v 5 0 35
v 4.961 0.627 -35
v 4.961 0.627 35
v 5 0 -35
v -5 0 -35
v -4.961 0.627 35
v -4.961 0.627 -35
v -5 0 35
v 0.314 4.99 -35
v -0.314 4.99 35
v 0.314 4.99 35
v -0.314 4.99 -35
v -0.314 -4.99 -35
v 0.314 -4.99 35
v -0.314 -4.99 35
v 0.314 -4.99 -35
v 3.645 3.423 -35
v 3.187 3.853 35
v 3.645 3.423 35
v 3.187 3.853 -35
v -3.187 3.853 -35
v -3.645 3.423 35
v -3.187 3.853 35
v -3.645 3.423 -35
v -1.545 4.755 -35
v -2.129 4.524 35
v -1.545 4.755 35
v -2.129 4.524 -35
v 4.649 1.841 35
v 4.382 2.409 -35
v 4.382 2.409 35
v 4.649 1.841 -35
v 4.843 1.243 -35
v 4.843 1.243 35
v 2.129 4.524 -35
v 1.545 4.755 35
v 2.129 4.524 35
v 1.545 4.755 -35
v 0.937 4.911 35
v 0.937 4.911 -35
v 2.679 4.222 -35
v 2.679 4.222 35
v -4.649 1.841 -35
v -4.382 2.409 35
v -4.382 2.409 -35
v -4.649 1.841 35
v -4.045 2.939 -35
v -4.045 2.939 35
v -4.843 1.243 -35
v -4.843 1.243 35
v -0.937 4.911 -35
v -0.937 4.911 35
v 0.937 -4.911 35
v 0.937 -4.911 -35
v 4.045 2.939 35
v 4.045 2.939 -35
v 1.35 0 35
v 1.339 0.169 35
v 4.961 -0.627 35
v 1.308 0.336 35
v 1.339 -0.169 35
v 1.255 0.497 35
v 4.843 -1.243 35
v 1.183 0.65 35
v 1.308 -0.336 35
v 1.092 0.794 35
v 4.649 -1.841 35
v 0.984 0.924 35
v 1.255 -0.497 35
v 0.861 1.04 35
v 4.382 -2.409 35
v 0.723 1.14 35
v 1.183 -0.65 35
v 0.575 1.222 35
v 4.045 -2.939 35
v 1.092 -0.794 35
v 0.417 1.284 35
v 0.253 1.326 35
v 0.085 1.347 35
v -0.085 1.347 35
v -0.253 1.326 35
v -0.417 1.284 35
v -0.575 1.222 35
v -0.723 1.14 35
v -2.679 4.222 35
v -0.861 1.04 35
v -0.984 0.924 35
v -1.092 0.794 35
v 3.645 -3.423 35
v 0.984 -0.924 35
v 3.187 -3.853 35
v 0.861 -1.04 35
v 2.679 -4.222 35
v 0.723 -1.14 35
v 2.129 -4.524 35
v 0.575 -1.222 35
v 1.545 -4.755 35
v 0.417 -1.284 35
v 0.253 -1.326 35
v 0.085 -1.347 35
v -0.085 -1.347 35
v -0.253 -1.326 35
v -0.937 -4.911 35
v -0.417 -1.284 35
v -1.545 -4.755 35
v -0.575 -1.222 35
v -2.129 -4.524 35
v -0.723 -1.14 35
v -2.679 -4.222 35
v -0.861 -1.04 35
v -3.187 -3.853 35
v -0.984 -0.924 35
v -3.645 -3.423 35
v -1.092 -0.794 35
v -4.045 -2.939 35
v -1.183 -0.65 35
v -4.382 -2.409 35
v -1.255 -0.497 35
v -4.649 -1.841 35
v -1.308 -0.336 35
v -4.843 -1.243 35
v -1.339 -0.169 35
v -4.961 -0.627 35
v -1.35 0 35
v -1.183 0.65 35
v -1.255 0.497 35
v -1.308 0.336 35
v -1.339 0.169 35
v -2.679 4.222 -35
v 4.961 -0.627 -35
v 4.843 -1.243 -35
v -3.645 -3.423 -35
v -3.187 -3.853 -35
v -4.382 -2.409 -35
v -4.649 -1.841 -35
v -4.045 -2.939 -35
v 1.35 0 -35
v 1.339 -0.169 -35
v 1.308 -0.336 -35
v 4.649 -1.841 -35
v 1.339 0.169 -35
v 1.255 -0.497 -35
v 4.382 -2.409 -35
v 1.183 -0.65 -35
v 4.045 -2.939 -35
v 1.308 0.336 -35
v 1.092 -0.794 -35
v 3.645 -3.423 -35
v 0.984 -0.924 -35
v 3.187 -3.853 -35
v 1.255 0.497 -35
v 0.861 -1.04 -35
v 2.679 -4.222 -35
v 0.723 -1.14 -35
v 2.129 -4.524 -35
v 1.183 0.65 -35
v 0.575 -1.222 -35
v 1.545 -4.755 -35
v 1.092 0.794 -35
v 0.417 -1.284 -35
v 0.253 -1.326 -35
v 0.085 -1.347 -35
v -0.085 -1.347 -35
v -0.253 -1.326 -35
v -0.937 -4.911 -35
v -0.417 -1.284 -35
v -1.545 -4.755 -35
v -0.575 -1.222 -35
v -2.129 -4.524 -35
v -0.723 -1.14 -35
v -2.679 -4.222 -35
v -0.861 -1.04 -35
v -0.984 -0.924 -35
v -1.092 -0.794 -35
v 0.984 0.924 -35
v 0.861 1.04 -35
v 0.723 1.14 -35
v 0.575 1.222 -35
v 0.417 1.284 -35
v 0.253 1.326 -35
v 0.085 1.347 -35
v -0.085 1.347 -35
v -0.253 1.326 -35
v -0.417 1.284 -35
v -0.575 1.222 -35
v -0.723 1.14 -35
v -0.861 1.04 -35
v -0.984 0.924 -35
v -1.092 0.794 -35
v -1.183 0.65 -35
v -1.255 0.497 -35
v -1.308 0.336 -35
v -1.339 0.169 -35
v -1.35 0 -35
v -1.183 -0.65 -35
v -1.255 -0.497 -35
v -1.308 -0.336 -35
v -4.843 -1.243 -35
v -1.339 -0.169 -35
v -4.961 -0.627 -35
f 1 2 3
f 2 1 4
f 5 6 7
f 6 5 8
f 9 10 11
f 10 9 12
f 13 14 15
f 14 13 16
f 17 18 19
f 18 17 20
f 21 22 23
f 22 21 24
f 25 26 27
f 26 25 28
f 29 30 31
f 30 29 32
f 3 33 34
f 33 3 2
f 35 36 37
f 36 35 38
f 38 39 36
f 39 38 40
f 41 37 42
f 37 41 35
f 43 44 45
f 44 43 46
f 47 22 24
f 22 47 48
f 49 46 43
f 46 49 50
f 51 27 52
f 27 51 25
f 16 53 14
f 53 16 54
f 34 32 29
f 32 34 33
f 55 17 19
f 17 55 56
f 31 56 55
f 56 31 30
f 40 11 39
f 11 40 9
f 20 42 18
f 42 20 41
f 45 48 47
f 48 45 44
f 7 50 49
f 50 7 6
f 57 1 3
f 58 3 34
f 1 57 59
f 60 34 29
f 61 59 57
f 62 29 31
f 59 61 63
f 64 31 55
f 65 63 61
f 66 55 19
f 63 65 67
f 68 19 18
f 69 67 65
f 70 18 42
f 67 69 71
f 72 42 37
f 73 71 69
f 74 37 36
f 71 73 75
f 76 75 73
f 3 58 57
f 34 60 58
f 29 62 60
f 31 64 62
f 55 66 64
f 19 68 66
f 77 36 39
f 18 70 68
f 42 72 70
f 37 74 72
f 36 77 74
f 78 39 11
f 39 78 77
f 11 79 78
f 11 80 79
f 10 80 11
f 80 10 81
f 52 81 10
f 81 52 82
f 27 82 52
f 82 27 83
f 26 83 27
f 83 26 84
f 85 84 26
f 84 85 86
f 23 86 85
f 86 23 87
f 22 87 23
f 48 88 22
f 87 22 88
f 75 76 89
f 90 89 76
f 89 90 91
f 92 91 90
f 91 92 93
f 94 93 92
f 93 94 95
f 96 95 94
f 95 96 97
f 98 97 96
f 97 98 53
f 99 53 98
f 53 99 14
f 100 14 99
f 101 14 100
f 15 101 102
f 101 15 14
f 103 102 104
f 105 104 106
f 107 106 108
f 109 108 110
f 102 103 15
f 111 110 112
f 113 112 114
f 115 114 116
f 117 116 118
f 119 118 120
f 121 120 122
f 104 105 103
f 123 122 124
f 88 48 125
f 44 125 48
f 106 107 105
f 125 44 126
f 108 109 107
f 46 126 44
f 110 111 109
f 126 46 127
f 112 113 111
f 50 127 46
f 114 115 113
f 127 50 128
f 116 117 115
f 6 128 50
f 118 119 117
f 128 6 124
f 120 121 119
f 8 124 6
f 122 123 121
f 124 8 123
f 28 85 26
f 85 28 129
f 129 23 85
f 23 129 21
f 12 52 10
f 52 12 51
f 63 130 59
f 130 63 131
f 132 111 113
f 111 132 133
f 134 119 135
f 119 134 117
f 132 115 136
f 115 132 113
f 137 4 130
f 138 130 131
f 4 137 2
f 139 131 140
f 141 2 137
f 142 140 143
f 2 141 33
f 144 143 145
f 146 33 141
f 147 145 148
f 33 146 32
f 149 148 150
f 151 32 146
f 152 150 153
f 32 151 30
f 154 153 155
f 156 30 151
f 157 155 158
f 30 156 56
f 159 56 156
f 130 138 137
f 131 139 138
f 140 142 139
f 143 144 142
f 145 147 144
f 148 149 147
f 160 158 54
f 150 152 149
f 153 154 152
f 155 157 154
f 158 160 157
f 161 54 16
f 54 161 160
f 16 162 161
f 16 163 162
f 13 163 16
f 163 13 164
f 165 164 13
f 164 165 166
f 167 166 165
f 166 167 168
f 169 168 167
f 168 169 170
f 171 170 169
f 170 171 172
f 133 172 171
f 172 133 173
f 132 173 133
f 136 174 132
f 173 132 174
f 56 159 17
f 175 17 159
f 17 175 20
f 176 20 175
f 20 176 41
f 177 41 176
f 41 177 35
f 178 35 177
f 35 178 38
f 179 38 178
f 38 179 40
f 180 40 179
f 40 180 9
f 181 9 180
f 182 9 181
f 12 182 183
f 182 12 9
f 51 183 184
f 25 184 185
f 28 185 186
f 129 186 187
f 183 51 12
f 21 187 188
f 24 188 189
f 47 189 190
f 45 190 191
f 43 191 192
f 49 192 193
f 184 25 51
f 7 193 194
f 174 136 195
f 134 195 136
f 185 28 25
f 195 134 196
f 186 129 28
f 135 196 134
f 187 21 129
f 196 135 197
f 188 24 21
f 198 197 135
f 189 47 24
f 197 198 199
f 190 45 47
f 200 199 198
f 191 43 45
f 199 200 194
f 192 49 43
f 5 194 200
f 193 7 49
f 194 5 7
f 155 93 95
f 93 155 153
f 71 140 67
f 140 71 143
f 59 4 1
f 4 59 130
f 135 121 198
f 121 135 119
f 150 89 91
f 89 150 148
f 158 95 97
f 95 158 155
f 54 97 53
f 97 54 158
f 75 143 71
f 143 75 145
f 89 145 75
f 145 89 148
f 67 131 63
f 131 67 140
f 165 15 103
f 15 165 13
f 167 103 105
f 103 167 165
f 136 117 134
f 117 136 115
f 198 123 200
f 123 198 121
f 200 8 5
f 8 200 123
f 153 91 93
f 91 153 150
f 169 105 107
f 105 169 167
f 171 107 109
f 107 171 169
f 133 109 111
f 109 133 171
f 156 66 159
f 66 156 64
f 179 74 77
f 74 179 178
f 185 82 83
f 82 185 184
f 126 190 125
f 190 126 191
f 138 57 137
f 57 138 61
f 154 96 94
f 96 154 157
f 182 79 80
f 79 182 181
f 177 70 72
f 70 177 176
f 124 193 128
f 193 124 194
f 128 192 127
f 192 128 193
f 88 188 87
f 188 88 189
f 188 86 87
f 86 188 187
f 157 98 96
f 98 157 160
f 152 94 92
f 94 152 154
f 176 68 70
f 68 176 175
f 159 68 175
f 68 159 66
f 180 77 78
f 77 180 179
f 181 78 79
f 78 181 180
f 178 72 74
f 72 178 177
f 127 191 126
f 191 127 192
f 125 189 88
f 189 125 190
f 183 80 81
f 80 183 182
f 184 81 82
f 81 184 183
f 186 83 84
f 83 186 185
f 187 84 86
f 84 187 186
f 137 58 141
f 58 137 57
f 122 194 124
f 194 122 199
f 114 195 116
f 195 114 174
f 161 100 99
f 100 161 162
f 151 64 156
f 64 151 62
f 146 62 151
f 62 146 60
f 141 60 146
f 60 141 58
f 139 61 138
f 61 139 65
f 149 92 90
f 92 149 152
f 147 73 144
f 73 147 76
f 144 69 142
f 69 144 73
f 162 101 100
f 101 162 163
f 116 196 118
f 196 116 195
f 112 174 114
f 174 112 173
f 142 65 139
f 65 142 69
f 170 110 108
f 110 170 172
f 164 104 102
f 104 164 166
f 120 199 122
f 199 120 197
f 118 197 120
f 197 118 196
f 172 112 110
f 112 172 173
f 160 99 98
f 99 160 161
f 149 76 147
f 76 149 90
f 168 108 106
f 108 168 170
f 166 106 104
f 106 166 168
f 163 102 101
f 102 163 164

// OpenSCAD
$fn = 50;


difference() {
	union() {
		translate(v = [0, 0, -35.0000000000]) {
			cylinder(h = 70, r = 5.0000000000);
		}
	}
	union() {
		translate(v = [0, 0, -100.0000000000]) {
			cylinder(h = 200, r = 1.3500000000);
		}
	}
}
